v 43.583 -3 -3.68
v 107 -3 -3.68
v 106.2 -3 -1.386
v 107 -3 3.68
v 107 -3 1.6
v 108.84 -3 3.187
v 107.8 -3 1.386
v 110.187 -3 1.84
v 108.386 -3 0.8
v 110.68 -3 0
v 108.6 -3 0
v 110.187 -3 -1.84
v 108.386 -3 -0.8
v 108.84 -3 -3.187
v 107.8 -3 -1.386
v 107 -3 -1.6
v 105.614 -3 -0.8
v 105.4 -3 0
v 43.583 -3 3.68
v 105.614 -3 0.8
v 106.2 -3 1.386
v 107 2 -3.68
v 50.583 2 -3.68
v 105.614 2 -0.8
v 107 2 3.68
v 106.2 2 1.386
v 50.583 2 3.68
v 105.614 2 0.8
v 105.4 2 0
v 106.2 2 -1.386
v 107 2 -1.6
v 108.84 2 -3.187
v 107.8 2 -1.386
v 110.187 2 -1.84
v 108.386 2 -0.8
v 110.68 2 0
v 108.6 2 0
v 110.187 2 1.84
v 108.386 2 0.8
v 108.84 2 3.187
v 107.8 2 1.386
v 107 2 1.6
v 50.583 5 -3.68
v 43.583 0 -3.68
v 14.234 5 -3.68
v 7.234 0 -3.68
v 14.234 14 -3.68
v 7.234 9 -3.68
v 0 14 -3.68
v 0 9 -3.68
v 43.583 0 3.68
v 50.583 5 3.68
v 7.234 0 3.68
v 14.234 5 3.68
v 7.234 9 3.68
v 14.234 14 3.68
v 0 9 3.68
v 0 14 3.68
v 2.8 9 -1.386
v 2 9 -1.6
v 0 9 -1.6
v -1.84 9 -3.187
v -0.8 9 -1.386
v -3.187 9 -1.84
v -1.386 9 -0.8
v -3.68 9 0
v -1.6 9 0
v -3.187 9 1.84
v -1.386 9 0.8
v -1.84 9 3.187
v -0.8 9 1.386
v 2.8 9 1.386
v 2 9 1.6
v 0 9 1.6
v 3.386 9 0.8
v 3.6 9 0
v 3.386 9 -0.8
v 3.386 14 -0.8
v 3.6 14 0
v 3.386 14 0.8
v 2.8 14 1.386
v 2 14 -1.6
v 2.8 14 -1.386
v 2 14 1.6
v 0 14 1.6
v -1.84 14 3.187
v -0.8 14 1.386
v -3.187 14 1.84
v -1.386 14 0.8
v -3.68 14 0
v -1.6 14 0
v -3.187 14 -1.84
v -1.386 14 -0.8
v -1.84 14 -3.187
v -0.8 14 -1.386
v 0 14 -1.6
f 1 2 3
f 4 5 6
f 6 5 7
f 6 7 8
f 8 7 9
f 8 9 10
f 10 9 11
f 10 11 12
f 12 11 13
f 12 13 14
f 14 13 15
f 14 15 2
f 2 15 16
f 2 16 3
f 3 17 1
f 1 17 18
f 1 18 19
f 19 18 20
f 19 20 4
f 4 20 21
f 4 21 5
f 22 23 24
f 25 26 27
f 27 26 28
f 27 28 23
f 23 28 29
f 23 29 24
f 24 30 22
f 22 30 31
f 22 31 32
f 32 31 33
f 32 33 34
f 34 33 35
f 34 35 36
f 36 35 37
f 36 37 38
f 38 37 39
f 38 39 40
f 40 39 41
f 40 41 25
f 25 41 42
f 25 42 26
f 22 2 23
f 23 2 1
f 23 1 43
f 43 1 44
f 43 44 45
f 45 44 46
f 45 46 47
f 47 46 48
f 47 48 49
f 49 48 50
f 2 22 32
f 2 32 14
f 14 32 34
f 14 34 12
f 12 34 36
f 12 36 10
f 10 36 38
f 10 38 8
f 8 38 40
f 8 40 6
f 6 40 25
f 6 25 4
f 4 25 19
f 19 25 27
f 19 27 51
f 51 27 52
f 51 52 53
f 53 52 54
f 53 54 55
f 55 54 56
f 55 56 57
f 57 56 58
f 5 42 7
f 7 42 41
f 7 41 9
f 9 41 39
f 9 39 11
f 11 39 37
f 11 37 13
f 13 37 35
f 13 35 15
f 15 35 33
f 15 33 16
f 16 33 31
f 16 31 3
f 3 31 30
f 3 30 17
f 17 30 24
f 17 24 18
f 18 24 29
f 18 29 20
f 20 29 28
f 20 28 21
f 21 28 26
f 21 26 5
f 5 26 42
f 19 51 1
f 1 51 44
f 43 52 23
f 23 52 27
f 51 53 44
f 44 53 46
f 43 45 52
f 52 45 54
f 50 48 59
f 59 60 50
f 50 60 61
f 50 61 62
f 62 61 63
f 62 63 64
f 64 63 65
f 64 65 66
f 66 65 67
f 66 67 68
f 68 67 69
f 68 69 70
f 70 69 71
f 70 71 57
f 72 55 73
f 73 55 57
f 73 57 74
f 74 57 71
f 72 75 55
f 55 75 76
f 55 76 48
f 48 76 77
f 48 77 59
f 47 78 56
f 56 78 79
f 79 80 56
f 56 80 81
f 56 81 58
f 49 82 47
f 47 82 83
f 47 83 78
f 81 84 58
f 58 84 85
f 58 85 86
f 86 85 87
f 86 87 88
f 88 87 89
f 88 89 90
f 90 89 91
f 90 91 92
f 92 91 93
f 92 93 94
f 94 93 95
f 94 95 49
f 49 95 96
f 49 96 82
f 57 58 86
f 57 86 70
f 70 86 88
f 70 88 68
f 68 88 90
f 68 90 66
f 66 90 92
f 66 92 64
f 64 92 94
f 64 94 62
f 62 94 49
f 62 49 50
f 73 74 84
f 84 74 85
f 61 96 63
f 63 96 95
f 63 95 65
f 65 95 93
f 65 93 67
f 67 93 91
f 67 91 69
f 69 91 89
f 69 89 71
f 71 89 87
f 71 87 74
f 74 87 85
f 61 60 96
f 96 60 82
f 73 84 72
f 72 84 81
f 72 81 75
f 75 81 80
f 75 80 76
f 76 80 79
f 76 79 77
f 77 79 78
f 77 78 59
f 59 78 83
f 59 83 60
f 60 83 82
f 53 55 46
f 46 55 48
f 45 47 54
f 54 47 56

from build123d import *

# Parameters (mm, degrees)
SKETCH1_R           = 1.6
BOSS_EXTRUDE1_DEPTH = 5
BOSS_EXTRUDE2_START = -14
BOSS_EXTRUDE2_DEPTH = 5
CUT_EXTRUDE1_DEPTH  = 5
SKETCH2_4_W         = 7
SKETCH2_4_H         = 7.36
BOSS_EXTRUDE3_DEPTH = 14
BOSS_EXTRUDE4_START = -2
SKETCH3_R           = 1.6
BOSS_EXTRUDE4_DEPTH = 5
SKETCH3_3_R         = 1.6
CUT_EXTRUDE2_DEPTH  = 112.622599862
SKETCH3_4_W         = 7
SKETCH3_4_H         = 7.36
BOSS_EXTRUDE5_DEPTH = 3


with BuildPart() as part:
    # Sketch1 → Boss-Extrude1 (new body)
    with BuildSketch(Plane(origin=(0, 0, 0), x_dir=(1, 0, 0), z_dir=(0, 1, 0))):
        with BuildLine():
            Line((0, 3.68), (107, 3.68))
            ThreePointArc((107, 3.68), (110.68, 0), (107, -3.68))
            Line((107, -3.68), (0, -3.68))
            ThreePointArc((0, -3.68), (-3.68, 0), (0, 3.68))
        make_face()
        with Locations(Location((107, 0, 0), (0, 0, 270))):
            Circle(SKETCH1_R, mode=Mode.SUBTRACT)
        with BuildLine():
            Line((0, 1.6), (2, 1.6))
            ThreePointArc((2, 1.6), (3.6, 0), (2, -1.6))
            Line((2, -1.6), (0, -1.6))
            ThreePointArc((0, -1.6), (-1.6, 0), (0, 1.6))
        make_face(mode=Mode.SUBTRACT)
    extrude(amount=BOSS_EXTRUDE1_DEPTH)

    # Sketch2<3> → Cut-Extrude1 (cut)
    with BuildSketch(Plane.XZ):
        with BuildLine():
            ThreePointArc((0, 3.68), (-3.68, 0), (0, -3.68))
            Line((0, -3.68), (7.234142504, -3.68))
            Line((7.234142504, -3.68), (7.234142504, 3.68))
            Line((7.234142504, 3.68), (0, 3.68))
        make_face()
        with BuildLine():
            ThreePointArc((0, -1.6), (-1.6, 0), (0, 1.6))
            Line((0, 1.6), (2, 1.6))
            ThreePointArc((2, 1.6), (3.6, 0), (2, -1.6))
            Line((2, -1.6), (0, -1.6))
        make_face(mode=Mode.SUBTRACT)
    extrude(amount=-CUT_EXTRUDE1_DEPTH, mode=Mode.SUBTRACT)



with BuildPart() as body_2:
    # Sketch2 → Boss-Extrude2 (new body)
    with BuildSketch(Plane.XZ.offset(BOSS_EXTRUDE2_START)):
        with BuildLine():
            ThreePointArc((0, 3.68), (-3.68, 0), (0, -3.68))
            Line((0, -3.68), (7.234142504, -3.68))
            Line((7.234142504, -3.68), (7.234142504, 3.68))
            Line((7.234142504, 3.68), (0, 3.68))
        make_face()
        with BuildLine():
            ThreePointArc((0, -1.6), (-1.6, 0), (0, 1.6))
            Line((0, 1.6), (2, 1.6))
            ThreePointArc((2, 1.6), (3.6, 0), (2, -1.6))
            Line((2, -1.6), (0, -1.6))
        make_face(mode=Mode.SUBTRACT)
    extrude(amount=BOSS_EXTRUDE2_DEPTH)


with BuildPart() as part_1:
    add(part.part)

    add(body_2.part)  # Boss-Extrude3 merges body 2
    # Sketch2<4> → Boss-Extrude3 (add)
    with BuildSketch(Plane.XZ):
        with Locations((10.734142504, 0)):
            Rectangle(SKETCH2_4_W, SKETCH2_4_H)
    extrude(amount=-BOSS_EXTRUDE3_DEPTH)

    # Sketch3<3> → Cut-Extrude2 (cut, through all)
    # profile 1 of 2: a face of its own
    with BuildSketch(Plane.XZ):
        with BuildLine():
            ThreePointArc((110.68, 0), (109.602152955, 2.602152955), (107, 3.68))
            ThreePointArc((107, 3.68), (103.32, 0), (107, -3.68))
            ThreePointArc((107, -3.68), (109.602152955, -2.602152955), (110.68, 0))
        make_face()
        with Locations((107, 0)):
            Circle(SKETCH3_3_R, mode=Mode.SUBTRACT)
    # profile 2 of 2: a face of its own
    with BuildSketch(Plane.XZ):
        with BuildLine():
            ThreePointArc((107, -3.68), (103.32, 0), (107, 3.68))
            Line((107, 3.68), (50.58268169, 3.68))
            Line((50.58268169, 3.68), (50.58268169, -3.68))
            Line((50.58268169, -3.68), (107, -3.68))
        make_face()
    extrude(amount=-CUT_EXTRUDE2_DEPTH, mode=Mode.SUBTRACT)



with BuildPart() as body_2_2:
    # Sketch3 → Boss-Extrude4 (new body)
    # profile 1 of 2: a face of its own
    with BuildSketch(Plane.XZ.offset(BOSS_EXTRUDE4_START)):
        with BuildLine():
            ThreePointArc((107, -3.68), (103.32, 0), (107, 3.68))
            Line((107, 3.68), (50.58268169, 3.68))
            Line((50.58268169, 3.68), (50.58268169, -3.68))
            Line((50.58268169, -3.68), (107, -3.68))
        make_face()
    # profile 2 of 2: a face of its own
    with BuildSketch(Plane.XZ.offset(BOSS_EXTRUDE4_START)):
        with BuildLine():
            ThreePointArc((110.68, 0), (109.602152955, 2.602152955), (107, 3.68))
            ThreePointArc((107, 3.68), (103.32, 0), (107, -3.68))
            ThreePointArc((107, -3.68), (109.602152955, -2.602152955), (110.68, 0))
        make_face()
        with Locations((107, 0)):
            Circle(SKETCH3_R, mode=Mode.SUBTRACT)
    extrude(amount=BOSS_EXTRUDE4_DEPTH)


with BuildPart() as part_2:
    add(part_1.part)

    add(body_2_2.part)  # Boss-Extrude5 merges body 2 2
    # Sketch3<4> → Boss-Extrude5 (add)
    with BuildSketch(Plane.XZ):
        with Locations((47.08268169, 0)):
            Rectangle(SKETCH3_4_W, SKETCH3_4_H)
    extrude(amount=BOSS_EXTRUDE5_DEPTH)


solid = part_2.part
